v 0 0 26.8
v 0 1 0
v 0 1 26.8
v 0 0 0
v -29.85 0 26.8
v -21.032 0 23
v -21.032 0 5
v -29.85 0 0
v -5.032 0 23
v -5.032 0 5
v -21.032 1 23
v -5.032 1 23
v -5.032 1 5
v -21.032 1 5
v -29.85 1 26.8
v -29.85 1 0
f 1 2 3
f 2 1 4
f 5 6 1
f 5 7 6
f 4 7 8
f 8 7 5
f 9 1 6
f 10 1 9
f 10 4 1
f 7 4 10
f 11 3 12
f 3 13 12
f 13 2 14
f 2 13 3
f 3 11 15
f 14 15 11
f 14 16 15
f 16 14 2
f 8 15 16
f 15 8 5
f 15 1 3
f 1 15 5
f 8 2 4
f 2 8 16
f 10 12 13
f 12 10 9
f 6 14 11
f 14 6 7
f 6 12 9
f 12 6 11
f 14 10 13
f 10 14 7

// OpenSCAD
$fn = 180;

wall_width = 29.85;
wall_height = 26.8;
wall_thickness = 1.;

window_w = 16;
window_h = 18.;
window_y = 5.; // distance from bottom to window

module wall_with_openings() {
    difference() {
        // main wall
        cube([wall_width, wall_height, wall_thickness]);
        // window cutout
        translate([8.818, window_y, -1]) {
            cube([window_w, window_h, wall_thickness + 2]);
        }
    }
}

// Rotate to stand upright
translate([-wall_width, wall_thickness, 0]) {
    rotate([90, 0, 0]) wall_with_openings();
}
